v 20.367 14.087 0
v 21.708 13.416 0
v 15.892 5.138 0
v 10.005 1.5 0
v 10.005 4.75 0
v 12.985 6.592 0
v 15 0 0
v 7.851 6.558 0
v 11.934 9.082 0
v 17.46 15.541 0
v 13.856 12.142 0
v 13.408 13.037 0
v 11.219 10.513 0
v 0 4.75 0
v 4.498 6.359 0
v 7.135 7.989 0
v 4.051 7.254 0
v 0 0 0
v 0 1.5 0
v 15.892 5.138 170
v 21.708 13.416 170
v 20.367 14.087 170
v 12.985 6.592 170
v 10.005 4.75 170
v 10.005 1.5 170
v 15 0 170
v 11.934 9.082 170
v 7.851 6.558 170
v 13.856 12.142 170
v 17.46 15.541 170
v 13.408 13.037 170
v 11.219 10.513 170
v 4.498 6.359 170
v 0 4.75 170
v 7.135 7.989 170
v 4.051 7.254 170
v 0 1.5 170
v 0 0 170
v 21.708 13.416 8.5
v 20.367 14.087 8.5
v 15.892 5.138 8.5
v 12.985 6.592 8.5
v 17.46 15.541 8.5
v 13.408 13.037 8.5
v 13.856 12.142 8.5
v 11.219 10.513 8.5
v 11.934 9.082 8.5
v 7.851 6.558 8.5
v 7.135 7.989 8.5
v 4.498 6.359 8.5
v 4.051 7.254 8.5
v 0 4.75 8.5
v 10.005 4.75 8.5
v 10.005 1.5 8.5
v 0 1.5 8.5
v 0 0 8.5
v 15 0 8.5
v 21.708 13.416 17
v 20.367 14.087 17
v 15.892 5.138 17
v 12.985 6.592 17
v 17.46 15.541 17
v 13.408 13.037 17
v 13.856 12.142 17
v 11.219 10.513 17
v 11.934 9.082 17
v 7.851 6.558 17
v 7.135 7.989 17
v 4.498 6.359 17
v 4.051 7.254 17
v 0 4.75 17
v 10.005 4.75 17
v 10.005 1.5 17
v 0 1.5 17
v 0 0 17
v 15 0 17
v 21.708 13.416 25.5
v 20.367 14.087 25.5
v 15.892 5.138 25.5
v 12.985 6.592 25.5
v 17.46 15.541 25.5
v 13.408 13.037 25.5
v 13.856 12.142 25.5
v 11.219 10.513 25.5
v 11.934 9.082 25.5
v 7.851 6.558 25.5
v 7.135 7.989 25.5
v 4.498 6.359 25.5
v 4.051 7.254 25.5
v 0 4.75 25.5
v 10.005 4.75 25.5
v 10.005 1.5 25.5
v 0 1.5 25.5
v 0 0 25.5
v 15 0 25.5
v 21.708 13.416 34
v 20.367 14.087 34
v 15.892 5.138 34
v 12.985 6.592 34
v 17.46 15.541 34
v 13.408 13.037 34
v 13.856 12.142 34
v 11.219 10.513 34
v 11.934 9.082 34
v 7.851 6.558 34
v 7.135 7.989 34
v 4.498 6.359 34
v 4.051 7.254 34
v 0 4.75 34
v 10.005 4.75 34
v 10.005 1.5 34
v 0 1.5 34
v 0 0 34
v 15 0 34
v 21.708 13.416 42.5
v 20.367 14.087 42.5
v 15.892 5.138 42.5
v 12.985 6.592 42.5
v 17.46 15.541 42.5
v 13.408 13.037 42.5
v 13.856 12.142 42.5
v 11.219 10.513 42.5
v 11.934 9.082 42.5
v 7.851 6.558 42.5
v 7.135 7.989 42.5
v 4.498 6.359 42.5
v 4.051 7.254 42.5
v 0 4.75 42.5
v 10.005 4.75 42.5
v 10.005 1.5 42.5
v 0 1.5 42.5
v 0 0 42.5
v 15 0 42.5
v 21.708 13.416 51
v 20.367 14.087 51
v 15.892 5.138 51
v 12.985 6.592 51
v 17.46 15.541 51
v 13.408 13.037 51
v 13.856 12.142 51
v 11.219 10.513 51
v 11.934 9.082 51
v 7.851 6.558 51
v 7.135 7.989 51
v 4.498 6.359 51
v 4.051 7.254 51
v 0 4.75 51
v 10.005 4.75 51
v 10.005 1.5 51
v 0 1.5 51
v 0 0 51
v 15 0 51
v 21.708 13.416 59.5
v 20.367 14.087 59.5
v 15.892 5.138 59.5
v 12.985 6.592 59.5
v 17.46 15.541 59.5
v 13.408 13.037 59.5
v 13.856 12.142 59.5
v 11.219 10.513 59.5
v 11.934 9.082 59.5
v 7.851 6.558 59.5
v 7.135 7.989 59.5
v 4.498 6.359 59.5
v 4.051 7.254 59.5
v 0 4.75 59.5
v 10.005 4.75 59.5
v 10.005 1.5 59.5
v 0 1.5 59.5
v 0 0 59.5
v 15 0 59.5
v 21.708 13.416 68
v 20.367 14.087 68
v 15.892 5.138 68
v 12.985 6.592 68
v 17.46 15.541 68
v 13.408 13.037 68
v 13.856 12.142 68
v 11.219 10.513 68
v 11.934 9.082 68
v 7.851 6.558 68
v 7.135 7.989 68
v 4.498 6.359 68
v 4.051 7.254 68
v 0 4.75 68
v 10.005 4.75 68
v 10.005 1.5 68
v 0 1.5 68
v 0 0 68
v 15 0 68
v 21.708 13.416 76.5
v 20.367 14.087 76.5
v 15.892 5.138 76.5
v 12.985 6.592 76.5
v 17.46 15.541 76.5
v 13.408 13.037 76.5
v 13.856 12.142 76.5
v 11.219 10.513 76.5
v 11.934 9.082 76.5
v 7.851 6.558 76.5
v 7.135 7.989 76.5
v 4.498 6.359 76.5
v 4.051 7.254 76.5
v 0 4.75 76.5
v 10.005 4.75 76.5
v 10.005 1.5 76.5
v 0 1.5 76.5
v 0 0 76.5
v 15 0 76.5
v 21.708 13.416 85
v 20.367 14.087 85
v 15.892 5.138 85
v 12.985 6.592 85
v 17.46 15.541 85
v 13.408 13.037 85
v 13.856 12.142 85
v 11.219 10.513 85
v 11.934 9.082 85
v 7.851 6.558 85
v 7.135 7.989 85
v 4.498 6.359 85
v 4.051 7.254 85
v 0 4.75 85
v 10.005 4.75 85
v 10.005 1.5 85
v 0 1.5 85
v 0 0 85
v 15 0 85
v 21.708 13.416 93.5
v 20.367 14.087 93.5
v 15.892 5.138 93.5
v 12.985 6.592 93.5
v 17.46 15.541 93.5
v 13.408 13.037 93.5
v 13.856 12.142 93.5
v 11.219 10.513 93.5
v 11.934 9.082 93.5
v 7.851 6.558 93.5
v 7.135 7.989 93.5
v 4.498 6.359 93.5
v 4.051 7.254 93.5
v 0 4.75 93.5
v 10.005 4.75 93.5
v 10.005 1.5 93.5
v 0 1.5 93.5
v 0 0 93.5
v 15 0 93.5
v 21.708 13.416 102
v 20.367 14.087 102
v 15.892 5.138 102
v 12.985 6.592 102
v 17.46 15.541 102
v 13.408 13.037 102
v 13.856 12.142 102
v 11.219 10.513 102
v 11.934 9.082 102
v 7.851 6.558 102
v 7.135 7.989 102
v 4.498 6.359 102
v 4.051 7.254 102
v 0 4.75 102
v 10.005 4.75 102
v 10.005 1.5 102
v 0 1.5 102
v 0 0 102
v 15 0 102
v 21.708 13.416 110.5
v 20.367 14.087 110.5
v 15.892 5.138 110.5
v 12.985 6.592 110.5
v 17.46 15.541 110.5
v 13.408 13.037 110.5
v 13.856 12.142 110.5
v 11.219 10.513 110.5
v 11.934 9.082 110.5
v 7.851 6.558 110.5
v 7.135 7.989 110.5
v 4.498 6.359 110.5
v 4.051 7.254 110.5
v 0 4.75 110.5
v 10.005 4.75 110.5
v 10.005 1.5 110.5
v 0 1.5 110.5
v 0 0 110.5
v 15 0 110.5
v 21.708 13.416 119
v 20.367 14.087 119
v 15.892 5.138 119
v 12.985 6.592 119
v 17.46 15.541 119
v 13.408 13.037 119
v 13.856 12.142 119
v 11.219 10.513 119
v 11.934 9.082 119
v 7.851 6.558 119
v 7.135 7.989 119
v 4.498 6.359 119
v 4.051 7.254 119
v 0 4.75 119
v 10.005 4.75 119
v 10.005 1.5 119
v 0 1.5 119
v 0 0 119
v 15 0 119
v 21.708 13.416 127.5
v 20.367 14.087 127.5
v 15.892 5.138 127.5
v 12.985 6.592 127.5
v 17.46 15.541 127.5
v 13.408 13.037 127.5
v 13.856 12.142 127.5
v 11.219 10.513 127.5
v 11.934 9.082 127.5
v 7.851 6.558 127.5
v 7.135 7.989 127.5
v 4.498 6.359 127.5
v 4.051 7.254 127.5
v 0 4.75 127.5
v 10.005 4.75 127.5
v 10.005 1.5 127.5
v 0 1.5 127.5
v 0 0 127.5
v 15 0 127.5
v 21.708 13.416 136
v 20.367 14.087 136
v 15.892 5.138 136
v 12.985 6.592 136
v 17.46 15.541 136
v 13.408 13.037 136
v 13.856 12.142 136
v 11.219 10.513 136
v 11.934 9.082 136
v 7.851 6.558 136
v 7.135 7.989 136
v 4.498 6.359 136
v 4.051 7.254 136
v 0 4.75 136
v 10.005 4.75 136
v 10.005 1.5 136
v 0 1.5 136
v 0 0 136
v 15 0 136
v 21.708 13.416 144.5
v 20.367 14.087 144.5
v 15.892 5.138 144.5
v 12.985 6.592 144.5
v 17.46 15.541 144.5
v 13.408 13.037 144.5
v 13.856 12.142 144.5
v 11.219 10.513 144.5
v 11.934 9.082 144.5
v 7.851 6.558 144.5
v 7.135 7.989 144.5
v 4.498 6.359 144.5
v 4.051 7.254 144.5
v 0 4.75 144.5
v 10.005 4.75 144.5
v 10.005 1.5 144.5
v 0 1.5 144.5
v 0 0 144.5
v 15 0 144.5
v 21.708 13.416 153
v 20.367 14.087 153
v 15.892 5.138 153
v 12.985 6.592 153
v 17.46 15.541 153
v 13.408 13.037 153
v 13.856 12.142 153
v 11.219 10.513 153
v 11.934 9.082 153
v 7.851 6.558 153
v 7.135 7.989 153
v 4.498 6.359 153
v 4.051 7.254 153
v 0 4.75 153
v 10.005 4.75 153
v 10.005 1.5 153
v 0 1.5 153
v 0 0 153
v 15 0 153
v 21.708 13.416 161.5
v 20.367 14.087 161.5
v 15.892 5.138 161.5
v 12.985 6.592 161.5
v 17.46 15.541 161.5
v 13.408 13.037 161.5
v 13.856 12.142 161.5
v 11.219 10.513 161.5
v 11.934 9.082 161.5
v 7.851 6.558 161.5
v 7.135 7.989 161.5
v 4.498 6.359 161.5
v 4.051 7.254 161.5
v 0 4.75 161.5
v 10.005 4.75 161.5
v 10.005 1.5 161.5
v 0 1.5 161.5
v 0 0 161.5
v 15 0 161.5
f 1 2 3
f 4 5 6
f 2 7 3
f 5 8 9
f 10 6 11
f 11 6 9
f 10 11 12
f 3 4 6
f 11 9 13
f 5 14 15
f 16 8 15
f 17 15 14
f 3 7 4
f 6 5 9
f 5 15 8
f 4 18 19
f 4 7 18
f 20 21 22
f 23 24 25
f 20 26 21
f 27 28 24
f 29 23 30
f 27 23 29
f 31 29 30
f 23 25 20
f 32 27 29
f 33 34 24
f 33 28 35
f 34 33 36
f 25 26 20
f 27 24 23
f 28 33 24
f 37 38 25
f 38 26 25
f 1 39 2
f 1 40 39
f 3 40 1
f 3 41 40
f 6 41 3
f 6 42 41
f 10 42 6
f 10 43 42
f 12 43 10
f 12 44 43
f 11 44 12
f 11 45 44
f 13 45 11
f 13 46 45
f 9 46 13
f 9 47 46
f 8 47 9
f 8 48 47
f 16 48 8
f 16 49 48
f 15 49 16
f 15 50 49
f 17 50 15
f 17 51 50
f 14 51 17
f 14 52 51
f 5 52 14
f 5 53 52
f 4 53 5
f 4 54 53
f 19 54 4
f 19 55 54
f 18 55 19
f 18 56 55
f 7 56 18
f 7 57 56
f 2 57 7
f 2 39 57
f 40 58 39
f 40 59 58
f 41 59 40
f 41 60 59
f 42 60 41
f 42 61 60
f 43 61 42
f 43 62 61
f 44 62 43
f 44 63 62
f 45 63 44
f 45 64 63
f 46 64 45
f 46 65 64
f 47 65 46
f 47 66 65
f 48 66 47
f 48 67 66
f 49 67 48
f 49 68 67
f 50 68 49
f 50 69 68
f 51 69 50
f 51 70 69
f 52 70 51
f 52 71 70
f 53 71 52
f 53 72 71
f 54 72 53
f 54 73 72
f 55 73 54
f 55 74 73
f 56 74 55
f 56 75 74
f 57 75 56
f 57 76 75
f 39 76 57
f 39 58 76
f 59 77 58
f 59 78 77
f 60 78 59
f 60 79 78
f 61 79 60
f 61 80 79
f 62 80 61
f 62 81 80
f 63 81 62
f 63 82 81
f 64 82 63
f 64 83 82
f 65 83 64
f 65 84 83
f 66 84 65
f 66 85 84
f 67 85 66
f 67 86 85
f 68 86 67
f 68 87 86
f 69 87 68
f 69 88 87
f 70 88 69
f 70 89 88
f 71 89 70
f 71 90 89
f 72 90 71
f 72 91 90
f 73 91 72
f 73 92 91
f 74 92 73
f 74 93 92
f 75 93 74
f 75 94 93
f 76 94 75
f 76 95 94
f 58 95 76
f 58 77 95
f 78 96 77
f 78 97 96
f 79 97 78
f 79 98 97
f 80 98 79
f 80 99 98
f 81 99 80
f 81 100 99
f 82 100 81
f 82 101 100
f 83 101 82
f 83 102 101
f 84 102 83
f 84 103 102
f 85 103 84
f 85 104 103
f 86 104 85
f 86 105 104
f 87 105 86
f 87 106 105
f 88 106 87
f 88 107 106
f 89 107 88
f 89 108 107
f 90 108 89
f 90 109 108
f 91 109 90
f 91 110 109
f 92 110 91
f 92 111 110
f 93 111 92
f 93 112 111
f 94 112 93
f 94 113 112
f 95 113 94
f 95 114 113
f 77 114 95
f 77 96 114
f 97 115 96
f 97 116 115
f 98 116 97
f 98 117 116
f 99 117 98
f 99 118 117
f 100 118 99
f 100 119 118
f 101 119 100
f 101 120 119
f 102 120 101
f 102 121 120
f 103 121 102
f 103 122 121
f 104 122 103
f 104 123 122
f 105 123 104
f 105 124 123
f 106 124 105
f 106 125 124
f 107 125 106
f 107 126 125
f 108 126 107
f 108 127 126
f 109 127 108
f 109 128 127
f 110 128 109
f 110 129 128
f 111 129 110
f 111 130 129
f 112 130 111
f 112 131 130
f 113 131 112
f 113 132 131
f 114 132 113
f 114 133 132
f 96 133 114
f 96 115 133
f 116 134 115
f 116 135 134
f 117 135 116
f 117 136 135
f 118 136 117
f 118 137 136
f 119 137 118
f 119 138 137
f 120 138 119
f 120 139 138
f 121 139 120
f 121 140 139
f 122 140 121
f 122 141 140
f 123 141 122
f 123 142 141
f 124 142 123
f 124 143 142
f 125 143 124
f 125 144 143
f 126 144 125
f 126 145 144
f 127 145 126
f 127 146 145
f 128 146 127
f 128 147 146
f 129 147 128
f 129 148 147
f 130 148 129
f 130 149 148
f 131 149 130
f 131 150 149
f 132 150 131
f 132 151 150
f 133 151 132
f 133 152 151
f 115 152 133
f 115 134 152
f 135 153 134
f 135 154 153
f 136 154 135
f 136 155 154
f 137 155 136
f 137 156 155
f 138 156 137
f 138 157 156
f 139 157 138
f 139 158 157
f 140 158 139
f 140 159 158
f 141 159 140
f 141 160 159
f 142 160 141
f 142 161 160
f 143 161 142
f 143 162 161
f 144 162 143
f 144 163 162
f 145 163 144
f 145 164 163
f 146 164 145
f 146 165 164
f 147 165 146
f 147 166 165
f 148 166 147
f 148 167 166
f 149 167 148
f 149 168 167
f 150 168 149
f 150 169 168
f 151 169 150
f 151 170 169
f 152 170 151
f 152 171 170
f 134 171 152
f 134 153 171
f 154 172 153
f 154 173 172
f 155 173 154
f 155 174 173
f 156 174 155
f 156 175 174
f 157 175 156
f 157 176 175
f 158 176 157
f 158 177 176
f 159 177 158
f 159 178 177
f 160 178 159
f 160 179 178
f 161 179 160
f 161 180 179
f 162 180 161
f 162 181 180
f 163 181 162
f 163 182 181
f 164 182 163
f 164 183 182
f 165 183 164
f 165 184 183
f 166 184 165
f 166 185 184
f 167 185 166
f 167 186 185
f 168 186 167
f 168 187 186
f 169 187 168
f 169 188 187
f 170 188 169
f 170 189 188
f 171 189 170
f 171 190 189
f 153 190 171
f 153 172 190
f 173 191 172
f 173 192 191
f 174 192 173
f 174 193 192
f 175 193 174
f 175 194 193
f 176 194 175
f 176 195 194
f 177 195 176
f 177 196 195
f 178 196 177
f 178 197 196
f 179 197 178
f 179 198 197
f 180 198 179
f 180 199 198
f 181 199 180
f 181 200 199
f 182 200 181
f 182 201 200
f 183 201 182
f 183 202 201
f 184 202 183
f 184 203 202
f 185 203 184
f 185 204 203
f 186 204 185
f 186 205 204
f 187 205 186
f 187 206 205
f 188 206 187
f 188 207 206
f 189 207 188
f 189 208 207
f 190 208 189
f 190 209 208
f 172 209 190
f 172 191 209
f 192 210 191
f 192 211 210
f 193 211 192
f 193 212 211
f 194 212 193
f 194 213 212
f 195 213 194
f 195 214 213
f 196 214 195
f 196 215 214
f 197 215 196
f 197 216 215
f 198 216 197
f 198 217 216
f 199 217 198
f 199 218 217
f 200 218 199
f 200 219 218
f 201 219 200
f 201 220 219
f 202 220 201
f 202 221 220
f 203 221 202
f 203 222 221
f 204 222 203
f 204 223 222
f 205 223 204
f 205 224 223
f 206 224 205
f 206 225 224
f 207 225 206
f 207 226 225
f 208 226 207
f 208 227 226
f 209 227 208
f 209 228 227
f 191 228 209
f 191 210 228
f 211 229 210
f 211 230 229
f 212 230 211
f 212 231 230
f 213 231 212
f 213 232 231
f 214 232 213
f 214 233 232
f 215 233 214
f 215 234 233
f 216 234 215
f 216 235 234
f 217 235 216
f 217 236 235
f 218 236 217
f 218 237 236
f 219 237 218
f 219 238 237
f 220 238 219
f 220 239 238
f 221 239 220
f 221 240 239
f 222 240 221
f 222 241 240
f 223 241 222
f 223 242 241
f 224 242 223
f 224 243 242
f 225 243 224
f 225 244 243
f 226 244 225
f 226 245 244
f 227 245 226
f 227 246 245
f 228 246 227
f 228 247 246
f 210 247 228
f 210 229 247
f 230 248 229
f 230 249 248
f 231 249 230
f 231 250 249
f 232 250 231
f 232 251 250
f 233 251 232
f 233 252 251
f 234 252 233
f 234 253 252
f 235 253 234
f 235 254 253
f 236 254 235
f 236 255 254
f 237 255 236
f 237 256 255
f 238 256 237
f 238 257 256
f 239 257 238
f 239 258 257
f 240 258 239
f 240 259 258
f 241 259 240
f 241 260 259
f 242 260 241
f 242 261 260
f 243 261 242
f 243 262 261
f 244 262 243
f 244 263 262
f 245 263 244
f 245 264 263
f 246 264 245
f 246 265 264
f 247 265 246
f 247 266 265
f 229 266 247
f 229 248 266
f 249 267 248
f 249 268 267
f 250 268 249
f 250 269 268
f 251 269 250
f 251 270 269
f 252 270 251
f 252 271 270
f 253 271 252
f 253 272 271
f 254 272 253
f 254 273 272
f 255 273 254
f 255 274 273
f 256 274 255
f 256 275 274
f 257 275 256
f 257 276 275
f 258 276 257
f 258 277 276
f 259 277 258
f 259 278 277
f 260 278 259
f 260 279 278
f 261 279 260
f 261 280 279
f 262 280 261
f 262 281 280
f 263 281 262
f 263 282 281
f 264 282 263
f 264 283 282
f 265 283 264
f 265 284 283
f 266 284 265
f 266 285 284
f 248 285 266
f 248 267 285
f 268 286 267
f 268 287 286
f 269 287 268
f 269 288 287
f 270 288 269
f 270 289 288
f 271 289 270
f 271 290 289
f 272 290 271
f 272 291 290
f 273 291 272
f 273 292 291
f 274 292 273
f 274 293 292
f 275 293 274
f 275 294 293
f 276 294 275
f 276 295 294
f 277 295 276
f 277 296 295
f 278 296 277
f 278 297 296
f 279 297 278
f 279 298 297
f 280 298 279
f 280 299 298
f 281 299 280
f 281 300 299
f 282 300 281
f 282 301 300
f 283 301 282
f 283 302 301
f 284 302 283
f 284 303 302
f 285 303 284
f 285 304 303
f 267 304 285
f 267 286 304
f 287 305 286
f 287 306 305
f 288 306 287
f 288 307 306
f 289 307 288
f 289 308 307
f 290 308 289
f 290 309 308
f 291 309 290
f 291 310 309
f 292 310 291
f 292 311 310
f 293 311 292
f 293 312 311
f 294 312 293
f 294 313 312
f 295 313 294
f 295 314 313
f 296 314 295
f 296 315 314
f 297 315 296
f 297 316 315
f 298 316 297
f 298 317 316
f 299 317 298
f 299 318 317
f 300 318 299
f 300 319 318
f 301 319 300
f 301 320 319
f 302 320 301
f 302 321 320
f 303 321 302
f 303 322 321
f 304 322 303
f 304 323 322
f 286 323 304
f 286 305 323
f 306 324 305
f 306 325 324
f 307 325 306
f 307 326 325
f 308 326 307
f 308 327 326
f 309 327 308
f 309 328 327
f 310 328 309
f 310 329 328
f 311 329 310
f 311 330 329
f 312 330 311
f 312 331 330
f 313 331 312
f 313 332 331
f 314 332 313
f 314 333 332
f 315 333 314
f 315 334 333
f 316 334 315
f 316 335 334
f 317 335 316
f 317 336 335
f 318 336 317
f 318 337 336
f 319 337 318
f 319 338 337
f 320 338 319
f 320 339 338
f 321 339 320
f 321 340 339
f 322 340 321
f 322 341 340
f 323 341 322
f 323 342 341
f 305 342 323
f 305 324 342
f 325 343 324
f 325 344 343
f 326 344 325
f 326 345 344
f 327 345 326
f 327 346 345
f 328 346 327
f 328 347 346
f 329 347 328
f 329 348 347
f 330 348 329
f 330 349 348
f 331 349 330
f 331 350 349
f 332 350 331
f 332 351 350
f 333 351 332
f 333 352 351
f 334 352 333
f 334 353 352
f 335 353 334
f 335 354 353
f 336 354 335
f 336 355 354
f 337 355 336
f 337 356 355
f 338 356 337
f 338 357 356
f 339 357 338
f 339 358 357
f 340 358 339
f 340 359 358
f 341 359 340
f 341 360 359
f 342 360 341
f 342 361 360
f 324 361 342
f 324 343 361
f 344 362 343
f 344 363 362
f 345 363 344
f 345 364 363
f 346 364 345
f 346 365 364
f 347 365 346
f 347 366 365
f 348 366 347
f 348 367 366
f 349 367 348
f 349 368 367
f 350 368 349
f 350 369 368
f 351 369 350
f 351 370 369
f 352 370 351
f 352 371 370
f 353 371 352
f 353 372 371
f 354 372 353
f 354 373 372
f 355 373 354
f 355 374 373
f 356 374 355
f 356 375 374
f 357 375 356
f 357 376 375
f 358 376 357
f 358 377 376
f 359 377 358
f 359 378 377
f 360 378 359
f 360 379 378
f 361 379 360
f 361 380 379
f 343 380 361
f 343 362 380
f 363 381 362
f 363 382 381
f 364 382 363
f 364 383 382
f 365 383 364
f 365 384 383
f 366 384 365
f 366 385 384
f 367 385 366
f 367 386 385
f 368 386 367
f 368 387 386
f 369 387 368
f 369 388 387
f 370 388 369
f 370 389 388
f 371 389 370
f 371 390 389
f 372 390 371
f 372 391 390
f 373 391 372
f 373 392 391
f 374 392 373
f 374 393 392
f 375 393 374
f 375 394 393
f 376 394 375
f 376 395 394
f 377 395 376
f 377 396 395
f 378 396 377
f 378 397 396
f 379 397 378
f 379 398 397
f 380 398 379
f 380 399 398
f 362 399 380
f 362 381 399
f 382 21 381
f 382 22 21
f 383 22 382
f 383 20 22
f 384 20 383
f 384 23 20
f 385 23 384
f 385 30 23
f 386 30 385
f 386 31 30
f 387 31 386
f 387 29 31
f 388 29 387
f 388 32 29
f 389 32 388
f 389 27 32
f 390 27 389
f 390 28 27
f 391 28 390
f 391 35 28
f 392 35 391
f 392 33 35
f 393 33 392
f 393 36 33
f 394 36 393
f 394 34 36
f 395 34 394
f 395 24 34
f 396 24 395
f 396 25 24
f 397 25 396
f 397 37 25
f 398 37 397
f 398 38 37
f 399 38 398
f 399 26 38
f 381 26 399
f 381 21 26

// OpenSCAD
edge = 170;           // length of edge
edgeThickness = 1.5;  // thickness of the edge
ribWidth = 15;        // width of the rib
paneThickness = 3.25; // thickness of the pane
channelWidth = 11;    // width of LED strip channel
channelDepth = 1;     // depth of LED strip channel
wireWidth = 3 * 1.6;  // width of wire channel (3 22 AWG insulated wires)
wireDepth = 1.6;      // depth of wire channel (1 22 AWG insulated wire)
dihedral = 116.56505; // angle of polyhedron dihedral
interior = 108.0;     // angle of face interior
fudge = 0.01;         // render artifact elimination fudge factor

//difference() {
    extruded_edge(edge, edgeThickness, ribWidth, paneThickness, channelWidth, channelDepth, wireWidth, wireDepth, dihedral);
//    union() {
//        angle_cut(ribWidth, interior);
//        translate([ribWidth,0,0]) {
//            rotate([0,0,180-dihedral]) {
//                translate([ribWidth, 0, 0]) {
//                    mirror([1,0,0]) {
//                        angle_cut(ribWidth, interior);
//                    }
//                }
//            }
//        }
//    }
//}


module angle_cut(ribWidth, interior) {

    angle_ab = 90 - (interior / 2);

    ax = 0;
    ay = 0;
    az = 0;

    bx = ribWidth;
    by = 0;
    bz = 0;

    cx = 0;
    cy = 0;
    cz = ribWidth * tan(angle_ab);

    dx = 0;
    dy = 20;
    dz = 0;

    ex = ribWidth;
    ey = 20;
    ez = 0;

    fx = 0;
    fy = 20;
    fz = ribWidth * tan(angle_ab);

    polyhedron(
        points=[
            [ax, ay, az],  // point a (0)
            [bx, by, bz],  // point b (1)
            [cx, cy, cz],  // point c (2)
            [dx, dy, dz],  // point d (3)
            [ex, ey, ez],  // point e (4)
            [fx, fy, fz]   // point f (5)
        ],
        faces=[
            [0, 3, 5, 2], // face A
            [0, 1, 4, 3], // face B
            [1, 2, 5, 4], // face C
            [3, 4, 5],    // face D
            [0, 1, 2]     // face E
        ],
        convexity=10
    );
};


module extruded_edge(edge, edgeThickness, ribWidth, paneThickness, channelWidth, channelDepth, wireWidth, wireDepth, dihedral) {

    linear_extrude(height=edge, center=false, convexity=0, twist=0, slices=20, scale=1) {
        
        ax = 0;
        ay = 0;
        bx = ribWidth;
        by = 0;
        cx = ribWidth + ribWidth * cos(180 - dihedral);
        cy = ribWidth * sin(180 - dihedral);
        dx = cx - edgeThickness * cos(dihedral - 90);
        dy = cy + edgeThickness * sin(dihedral - 90);
        ex = dx - 0.667 * ribWidth * cos(180 - dihedral);
        ey = dy - 0.667 * ribWidth * sin(180 - dihedral);
        fx = ex - paneThickness * cos(dihedral - 90);
        fy = ey + paneThickness * sin(dihedral - 90);
        gx = fx + 0.667 * ribWidth * cos(180 - dihedral);
        gy = fy + 0.667 * ribWidth * sin(180 - dihedral);
        px = 0;
        py = edgeThickness + paneThickness;
        qx = 0.667 * ribWidth;
        qy = py;
        rx = qx;
        ry = edgeThickness;
        sx = 0;
        sy = ry; 


        angle_opq = atan((gy - py) / gx);  // derived angle of inside edge
        gp = gx / cos(angle_opq);          // total width of inside edge
        gh = 0.5 * (gp - channelWidth);    // width of offset on either side of the LED channel
        ho = gp - 2 * gh;                  // derived width of LED channel (should match specified)
        jm = wireWidth;                    // total width of wire channel
        ij = 0.5 * (ho - jm);              // width of offset on either side of wire channel within the LED channel
        assert(ho == channelWidth, "Derived channel width does not match specified width");
        assert(jm < ho, "Total wire channel width exceeds the width of the LED strip");

        hx = gx - gh * cos(angle_opq);
        hy = gy - gh * sin(angle_opq);
        ix = hx + channelDepth * sin(90 - 2 * angle_opq);
        iy = hy - channelDepth * cos(90 - 2 * angle_opq);

        ox = px + gh * cos(angle_opq);
        oy = py + gh * sin(angle_opq);
        nx = ox + channelDepth * sin(90 - 2 * angle_opq);
        ny = oy - channelDepth * cos(90 - 2 * angle_opq);
        
        jx = ix - ij * cos(angle_opq);
        jy = iy - ij * sin(angle_opq);

        kx = jx + wireDepth * sin(90 - 2 * angle_opq);
        ky = jy - wireDepth * cos(90 - 2 * angle_opq);

        mx = nx + ij * cos(angle_opq);
        my = ny + ij * sin(angle_opq);
        lx = mx + wireDepth * sin(90 - 2 * angle_opq);
        ly = my - wireDepth * cos(90 - 2 * angle_opq);
        

        
        polygon([
            [ax, ay], // point 'a'
            [bx, by], // point 'b'
            [cx, cy], // point 'c'
            [dx, dy], // point 'd'
            [ex, ey], // point 'e'
            [fx, fy], // point 'f'
            [gx, gy], // point 'g'
            [hx, hy], // point 'h'
            [ix, iy], // point 'i'
            [jx, jy], // point 'j'
            [kx, ky], // point 'k'
            [lx, ly], // point 'l'
            [mx, my], // point 'm'
            [nx, ny], // point 'n'
            [ox, oy], // point 'o'
            [px, py], // point 'p'
            [qx, qy], // point 'q'
            [rx, ry], // point 'r'
            [sx, sy]  // point 's'
        ]);
    }
};
